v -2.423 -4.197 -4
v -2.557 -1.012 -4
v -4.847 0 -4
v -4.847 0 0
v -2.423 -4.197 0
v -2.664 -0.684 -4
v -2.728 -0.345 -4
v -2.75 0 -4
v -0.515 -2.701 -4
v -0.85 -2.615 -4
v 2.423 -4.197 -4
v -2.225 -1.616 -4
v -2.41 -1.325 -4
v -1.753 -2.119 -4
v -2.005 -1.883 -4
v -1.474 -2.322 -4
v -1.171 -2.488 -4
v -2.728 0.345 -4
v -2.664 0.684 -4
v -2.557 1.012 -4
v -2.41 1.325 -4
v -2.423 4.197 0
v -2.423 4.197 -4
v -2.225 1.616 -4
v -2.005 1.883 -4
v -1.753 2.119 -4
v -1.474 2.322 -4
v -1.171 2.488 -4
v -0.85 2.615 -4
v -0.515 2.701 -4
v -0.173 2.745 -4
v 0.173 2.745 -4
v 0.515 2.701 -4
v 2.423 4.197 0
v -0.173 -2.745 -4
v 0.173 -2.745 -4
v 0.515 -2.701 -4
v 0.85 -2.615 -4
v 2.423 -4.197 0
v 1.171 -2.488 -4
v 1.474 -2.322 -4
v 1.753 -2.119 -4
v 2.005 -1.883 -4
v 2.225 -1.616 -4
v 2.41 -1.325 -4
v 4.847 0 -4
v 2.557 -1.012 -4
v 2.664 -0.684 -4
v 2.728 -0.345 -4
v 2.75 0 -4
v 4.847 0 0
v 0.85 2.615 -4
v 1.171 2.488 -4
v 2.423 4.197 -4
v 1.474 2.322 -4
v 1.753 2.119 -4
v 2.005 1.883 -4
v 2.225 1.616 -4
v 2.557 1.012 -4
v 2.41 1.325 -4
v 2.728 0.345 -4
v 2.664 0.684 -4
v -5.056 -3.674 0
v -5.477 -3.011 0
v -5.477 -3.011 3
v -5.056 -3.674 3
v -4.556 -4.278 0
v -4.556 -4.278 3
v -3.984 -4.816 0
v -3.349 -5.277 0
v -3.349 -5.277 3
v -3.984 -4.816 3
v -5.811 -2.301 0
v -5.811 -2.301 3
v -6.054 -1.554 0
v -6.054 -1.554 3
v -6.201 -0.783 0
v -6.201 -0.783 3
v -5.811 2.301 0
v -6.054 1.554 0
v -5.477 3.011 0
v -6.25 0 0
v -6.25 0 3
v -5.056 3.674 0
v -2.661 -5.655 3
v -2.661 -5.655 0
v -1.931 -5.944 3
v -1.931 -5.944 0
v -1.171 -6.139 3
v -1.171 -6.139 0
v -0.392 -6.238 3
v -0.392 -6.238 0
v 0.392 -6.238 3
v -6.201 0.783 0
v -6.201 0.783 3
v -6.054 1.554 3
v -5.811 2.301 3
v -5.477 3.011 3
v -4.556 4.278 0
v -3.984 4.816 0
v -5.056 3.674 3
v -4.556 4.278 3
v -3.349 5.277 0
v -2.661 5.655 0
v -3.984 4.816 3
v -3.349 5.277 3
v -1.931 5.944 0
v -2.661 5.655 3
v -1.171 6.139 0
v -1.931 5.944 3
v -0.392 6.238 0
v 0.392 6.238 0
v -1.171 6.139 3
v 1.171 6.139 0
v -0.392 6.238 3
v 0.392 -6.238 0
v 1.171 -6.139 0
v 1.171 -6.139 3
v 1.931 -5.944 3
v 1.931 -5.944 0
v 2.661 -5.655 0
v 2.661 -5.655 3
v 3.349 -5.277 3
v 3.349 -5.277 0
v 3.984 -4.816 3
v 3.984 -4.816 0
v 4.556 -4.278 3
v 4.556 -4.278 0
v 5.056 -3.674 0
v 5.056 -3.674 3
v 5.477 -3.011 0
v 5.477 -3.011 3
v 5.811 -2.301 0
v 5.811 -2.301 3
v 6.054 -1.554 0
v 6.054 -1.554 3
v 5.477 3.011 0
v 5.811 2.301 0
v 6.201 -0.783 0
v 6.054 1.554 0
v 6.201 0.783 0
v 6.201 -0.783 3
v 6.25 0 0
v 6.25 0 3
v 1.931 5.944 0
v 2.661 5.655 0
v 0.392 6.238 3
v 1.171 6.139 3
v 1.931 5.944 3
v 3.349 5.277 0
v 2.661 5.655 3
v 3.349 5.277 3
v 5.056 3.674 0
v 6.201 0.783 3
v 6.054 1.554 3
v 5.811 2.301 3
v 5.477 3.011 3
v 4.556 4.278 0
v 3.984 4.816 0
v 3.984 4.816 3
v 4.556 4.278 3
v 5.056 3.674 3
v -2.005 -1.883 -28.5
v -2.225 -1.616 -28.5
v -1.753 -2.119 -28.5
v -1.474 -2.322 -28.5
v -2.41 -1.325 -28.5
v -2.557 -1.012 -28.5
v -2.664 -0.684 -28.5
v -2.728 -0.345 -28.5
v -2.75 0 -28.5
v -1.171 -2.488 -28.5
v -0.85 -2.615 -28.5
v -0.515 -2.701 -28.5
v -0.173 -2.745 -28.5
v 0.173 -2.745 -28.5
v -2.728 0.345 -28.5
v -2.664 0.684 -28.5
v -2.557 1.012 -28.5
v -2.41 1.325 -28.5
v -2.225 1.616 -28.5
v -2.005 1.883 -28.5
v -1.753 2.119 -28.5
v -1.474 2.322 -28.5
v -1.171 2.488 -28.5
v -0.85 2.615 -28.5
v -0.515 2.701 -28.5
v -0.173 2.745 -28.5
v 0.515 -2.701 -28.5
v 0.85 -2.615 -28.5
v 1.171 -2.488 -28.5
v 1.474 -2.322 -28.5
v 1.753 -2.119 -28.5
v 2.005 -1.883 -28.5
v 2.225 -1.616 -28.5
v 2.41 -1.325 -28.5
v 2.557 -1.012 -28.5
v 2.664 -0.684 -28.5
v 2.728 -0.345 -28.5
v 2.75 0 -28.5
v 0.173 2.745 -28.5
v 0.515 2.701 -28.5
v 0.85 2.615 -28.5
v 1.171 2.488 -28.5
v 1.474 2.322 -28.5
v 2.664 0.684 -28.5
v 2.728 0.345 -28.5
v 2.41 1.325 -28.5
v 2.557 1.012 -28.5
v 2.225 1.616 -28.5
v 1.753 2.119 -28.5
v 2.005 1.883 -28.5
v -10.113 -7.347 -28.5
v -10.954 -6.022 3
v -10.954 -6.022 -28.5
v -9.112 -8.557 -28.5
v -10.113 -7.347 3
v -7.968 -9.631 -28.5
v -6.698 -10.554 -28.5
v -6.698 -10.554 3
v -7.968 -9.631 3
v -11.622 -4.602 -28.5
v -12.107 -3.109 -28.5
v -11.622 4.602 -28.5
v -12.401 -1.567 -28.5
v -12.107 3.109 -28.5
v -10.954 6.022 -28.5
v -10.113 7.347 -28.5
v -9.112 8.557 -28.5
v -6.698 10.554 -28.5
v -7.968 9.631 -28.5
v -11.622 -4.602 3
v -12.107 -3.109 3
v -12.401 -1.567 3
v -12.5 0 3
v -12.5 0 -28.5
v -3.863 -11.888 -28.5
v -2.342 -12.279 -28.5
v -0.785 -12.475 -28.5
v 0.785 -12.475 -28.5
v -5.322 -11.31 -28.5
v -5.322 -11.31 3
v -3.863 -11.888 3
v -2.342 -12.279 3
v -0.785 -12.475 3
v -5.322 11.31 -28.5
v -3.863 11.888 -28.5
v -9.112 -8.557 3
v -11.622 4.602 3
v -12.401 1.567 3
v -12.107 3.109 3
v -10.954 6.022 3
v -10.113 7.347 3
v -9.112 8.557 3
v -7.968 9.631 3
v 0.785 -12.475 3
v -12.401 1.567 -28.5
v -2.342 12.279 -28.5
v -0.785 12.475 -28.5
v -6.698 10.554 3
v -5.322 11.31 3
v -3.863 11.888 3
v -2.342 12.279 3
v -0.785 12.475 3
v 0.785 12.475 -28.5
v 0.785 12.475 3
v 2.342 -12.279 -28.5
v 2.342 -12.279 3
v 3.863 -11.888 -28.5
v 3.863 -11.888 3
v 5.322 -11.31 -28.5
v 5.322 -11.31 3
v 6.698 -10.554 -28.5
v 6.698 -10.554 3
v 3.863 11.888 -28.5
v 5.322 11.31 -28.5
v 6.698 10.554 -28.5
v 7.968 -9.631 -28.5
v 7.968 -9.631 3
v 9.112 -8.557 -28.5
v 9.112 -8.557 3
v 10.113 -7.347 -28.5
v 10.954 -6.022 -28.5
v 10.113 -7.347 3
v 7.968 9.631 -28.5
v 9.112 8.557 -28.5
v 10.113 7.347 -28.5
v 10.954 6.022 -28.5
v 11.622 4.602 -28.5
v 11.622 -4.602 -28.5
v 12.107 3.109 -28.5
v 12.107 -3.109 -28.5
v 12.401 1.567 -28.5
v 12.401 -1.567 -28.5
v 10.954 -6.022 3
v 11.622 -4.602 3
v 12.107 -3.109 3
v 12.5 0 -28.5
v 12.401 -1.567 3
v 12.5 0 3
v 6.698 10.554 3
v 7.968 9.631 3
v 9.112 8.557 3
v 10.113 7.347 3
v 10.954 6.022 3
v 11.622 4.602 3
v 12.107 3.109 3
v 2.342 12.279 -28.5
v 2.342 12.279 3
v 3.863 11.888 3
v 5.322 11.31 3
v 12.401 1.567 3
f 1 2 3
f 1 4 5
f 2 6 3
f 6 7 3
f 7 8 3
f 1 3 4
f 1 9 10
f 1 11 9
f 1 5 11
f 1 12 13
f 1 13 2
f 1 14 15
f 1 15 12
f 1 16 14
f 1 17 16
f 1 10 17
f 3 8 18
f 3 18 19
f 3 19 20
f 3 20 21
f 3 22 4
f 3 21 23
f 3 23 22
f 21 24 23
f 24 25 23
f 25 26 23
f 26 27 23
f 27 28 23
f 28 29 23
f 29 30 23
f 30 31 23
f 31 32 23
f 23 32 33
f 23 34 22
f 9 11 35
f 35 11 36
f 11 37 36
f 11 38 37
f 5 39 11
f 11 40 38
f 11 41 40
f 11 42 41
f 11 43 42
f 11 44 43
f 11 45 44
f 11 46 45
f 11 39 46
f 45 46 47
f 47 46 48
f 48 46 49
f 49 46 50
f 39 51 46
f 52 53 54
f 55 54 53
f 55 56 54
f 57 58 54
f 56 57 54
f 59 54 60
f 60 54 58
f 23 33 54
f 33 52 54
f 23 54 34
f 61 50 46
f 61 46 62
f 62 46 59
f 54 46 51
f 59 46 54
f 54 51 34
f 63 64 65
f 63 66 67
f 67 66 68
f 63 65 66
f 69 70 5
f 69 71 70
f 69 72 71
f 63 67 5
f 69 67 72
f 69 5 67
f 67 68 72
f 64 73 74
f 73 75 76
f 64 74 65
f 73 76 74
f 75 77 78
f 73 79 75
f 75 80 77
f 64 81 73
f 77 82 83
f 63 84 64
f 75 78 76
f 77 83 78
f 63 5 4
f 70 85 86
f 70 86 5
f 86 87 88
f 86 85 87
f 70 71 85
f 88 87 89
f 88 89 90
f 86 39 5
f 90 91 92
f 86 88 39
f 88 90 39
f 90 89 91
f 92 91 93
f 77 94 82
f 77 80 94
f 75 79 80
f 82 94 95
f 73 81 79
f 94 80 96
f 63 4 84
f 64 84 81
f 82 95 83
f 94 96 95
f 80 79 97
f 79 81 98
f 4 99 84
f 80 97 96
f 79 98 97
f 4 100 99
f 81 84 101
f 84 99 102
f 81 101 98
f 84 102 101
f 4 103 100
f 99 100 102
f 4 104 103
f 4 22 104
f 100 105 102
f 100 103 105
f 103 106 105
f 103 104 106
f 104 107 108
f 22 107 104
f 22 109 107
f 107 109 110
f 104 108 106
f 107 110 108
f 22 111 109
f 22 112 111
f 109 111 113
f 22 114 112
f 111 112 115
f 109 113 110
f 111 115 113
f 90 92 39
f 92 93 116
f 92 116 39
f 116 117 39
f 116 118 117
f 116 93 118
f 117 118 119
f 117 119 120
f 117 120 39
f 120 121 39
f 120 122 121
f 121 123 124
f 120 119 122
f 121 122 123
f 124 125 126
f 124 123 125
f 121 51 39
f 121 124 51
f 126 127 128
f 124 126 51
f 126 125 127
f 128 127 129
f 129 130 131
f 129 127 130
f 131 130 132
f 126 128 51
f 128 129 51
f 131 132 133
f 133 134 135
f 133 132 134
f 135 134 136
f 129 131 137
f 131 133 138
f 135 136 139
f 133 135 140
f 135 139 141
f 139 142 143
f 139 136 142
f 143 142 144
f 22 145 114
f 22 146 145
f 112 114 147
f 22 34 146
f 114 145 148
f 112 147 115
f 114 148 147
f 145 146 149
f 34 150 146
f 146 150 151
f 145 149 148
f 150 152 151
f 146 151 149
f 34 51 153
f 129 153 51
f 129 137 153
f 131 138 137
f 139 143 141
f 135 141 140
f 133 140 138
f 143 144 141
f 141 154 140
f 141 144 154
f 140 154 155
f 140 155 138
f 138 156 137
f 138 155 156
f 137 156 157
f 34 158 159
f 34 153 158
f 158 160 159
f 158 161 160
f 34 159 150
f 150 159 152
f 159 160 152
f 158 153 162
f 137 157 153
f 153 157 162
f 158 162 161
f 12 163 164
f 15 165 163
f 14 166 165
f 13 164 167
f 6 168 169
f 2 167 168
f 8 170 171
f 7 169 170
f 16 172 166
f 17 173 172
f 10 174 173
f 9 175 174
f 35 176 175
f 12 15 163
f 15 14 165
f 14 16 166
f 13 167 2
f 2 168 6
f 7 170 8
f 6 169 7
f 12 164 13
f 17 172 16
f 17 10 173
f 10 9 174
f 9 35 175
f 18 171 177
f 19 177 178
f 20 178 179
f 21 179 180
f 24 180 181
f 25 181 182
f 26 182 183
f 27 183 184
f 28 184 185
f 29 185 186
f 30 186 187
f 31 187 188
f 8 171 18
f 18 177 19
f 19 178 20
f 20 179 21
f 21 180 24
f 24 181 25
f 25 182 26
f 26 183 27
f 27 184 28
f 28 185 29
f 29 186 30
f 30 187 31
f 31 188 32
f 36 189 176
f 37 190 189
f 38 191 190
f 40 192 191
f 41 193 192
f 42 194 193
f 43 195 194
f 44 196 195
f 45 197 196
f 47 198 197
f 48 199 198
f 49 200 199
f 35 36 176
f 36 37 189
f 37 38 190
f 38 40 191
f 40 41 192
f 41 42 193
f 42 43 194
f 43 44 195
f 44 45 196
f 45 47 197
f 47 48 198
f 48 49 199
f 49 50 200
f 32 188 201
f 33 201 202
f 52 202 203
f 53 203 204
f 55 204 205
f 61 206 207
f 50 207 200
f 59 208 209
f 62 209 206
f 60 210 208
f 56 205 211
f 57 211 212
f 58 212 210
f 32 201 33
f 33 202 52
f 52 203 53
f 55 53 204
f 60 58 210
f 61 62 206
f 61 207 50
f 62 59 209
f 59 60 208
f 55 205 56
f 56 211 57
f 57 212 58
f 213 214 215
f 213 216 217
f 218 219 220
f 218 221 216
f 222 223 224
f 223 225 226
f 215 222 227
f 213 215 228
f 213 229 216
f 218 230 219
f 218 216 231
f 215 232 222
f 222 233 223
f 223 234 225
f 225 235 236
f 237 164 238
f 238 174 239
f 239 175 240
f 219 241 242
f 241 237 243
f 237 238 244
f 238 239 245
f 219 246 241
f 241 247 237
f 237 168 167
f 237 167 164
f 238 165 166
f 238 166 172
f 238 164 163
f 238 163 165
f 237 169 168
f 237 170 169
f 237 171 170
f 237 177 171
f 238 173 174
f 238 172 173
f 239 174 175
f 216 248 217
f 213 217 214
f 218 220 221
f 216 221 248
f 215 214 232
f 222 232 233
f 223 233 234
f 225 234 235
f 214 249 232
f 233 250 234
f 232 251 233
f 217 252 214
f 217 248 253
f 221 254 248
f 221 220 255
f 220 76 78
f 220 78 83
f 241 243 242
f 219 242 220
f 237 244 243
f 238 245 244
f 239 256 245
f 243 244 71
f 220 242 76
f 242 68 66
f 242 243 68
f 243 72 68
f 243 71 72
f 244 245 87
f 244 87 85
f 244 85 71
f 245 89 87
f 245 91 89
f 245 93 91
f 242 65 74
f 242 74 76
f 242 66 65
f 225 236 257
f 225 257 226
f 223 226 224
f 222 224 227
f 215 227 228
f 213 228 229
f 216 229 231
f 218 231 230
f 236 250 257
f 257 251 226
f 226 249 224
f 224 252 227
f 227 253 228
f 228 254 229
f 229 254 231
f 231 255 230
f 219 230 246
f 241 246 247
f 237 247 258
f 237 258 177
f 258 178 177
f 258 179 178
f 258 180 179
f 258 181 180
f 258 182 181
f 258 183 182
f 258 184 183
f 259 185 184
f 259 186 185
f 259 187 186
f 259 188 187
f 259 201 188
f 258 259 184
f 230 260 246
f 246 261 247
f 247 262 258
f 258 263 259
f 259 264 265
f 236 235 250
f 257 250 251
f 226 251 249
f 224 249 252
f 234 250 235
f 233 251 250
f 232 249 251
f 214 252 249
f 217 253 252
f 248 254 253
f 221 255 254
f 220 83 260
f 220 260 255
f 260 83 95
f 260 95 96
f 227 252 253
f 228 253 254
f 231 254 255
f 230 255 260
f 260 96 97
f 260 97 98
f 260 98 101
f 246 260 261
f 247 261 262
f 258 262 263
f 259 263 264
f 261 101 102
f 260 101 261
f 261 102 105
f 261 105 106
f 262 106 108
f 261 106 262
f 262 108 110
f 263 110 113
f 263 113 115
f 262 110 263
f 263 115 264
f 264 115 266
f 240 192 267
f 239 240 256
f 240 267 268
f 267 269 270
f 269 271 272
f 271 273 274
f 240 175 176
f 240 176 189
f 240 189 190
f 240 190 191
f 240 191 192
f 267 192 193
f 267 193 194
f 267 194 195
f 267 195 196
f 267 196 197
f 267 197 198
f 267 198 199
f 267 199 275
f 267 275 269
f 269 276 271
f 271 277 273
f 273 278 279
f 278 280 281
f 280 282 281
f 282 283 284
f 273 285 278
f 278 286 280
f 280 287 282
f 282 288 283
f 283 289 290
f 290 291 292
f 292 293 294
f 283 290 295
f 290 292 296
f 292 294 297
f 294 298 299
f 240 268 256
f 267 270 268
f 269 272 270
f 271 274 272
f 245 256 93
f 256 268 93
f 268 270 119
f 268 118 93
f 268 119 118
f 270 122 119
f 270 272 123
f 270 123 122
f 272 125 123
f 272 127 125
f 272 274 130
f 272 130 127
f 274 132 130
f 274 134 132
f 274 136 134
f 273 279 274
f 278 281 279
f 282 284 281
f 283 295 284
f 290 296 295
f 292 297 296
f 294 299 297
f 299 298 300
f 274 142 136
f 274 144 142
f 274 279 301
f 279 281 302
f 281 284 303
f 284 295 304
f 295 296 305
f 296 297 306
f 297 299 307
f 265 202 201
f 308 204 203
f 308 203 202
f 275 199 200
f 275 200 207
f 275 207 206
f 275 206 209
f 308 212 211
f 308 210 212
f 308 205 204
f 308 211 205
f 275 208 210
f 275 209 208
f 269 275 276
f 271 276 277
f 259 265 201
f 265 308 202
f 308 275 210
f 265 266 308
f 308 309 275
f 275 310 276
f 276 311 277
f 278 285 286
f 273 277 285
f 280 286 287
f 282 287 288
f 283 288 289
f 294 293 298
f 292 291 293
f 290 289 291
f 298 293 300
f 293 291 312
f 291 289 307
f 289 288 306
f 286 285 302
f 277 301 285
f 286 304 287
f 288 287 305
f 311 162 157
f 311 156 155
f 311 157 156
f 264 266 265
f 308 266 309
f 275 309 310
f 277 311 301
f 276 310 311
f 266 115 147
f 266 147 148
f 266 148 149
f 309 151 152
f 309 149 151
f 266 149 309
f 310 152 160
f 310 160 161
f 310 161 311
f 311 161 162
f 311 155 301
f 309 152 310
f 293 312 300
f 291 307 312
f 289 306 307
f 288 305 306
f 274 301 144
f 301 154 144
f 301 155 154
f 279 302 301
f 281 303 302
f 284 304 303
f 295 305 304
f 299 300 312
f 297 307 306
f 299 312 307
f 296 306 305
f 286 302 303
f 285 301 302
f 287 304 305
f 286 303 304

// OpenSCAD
$fn = 50;


difference() {
	union() {
		translate(v = [0, 0, -28.5000000000]) {
			cylinder(h = 31.5000000000, r = 12.5000000000);
		}
	}
	union() {
		translate(v = [0, 0, 0]) {
			rotate(a = [0, 0, 0]) {
				difference() {
					union() {
						translate(v = [0, 0, -4]) {
							linear_extrude(height = 4) {
								polygon(points = [[4.8468000000, 0.0000000000], [2.4234000000, 4.1974519271], [-2.4234000000, 4.1974519271], [-4.8468000000, 0.0000000000], [-2.4234000000, -4.1974519271], [2.4234000000, -4.1974519271]]);
							}
						}
					}
					union();
				}
			}
		}
		#cylinder(h = 3, r = 6.2500000000);
		#translate(v = [0, 0, -100.0000000000]) {
			cylinder(h = 200, r = 2.7500000000);
		}
	}
}
